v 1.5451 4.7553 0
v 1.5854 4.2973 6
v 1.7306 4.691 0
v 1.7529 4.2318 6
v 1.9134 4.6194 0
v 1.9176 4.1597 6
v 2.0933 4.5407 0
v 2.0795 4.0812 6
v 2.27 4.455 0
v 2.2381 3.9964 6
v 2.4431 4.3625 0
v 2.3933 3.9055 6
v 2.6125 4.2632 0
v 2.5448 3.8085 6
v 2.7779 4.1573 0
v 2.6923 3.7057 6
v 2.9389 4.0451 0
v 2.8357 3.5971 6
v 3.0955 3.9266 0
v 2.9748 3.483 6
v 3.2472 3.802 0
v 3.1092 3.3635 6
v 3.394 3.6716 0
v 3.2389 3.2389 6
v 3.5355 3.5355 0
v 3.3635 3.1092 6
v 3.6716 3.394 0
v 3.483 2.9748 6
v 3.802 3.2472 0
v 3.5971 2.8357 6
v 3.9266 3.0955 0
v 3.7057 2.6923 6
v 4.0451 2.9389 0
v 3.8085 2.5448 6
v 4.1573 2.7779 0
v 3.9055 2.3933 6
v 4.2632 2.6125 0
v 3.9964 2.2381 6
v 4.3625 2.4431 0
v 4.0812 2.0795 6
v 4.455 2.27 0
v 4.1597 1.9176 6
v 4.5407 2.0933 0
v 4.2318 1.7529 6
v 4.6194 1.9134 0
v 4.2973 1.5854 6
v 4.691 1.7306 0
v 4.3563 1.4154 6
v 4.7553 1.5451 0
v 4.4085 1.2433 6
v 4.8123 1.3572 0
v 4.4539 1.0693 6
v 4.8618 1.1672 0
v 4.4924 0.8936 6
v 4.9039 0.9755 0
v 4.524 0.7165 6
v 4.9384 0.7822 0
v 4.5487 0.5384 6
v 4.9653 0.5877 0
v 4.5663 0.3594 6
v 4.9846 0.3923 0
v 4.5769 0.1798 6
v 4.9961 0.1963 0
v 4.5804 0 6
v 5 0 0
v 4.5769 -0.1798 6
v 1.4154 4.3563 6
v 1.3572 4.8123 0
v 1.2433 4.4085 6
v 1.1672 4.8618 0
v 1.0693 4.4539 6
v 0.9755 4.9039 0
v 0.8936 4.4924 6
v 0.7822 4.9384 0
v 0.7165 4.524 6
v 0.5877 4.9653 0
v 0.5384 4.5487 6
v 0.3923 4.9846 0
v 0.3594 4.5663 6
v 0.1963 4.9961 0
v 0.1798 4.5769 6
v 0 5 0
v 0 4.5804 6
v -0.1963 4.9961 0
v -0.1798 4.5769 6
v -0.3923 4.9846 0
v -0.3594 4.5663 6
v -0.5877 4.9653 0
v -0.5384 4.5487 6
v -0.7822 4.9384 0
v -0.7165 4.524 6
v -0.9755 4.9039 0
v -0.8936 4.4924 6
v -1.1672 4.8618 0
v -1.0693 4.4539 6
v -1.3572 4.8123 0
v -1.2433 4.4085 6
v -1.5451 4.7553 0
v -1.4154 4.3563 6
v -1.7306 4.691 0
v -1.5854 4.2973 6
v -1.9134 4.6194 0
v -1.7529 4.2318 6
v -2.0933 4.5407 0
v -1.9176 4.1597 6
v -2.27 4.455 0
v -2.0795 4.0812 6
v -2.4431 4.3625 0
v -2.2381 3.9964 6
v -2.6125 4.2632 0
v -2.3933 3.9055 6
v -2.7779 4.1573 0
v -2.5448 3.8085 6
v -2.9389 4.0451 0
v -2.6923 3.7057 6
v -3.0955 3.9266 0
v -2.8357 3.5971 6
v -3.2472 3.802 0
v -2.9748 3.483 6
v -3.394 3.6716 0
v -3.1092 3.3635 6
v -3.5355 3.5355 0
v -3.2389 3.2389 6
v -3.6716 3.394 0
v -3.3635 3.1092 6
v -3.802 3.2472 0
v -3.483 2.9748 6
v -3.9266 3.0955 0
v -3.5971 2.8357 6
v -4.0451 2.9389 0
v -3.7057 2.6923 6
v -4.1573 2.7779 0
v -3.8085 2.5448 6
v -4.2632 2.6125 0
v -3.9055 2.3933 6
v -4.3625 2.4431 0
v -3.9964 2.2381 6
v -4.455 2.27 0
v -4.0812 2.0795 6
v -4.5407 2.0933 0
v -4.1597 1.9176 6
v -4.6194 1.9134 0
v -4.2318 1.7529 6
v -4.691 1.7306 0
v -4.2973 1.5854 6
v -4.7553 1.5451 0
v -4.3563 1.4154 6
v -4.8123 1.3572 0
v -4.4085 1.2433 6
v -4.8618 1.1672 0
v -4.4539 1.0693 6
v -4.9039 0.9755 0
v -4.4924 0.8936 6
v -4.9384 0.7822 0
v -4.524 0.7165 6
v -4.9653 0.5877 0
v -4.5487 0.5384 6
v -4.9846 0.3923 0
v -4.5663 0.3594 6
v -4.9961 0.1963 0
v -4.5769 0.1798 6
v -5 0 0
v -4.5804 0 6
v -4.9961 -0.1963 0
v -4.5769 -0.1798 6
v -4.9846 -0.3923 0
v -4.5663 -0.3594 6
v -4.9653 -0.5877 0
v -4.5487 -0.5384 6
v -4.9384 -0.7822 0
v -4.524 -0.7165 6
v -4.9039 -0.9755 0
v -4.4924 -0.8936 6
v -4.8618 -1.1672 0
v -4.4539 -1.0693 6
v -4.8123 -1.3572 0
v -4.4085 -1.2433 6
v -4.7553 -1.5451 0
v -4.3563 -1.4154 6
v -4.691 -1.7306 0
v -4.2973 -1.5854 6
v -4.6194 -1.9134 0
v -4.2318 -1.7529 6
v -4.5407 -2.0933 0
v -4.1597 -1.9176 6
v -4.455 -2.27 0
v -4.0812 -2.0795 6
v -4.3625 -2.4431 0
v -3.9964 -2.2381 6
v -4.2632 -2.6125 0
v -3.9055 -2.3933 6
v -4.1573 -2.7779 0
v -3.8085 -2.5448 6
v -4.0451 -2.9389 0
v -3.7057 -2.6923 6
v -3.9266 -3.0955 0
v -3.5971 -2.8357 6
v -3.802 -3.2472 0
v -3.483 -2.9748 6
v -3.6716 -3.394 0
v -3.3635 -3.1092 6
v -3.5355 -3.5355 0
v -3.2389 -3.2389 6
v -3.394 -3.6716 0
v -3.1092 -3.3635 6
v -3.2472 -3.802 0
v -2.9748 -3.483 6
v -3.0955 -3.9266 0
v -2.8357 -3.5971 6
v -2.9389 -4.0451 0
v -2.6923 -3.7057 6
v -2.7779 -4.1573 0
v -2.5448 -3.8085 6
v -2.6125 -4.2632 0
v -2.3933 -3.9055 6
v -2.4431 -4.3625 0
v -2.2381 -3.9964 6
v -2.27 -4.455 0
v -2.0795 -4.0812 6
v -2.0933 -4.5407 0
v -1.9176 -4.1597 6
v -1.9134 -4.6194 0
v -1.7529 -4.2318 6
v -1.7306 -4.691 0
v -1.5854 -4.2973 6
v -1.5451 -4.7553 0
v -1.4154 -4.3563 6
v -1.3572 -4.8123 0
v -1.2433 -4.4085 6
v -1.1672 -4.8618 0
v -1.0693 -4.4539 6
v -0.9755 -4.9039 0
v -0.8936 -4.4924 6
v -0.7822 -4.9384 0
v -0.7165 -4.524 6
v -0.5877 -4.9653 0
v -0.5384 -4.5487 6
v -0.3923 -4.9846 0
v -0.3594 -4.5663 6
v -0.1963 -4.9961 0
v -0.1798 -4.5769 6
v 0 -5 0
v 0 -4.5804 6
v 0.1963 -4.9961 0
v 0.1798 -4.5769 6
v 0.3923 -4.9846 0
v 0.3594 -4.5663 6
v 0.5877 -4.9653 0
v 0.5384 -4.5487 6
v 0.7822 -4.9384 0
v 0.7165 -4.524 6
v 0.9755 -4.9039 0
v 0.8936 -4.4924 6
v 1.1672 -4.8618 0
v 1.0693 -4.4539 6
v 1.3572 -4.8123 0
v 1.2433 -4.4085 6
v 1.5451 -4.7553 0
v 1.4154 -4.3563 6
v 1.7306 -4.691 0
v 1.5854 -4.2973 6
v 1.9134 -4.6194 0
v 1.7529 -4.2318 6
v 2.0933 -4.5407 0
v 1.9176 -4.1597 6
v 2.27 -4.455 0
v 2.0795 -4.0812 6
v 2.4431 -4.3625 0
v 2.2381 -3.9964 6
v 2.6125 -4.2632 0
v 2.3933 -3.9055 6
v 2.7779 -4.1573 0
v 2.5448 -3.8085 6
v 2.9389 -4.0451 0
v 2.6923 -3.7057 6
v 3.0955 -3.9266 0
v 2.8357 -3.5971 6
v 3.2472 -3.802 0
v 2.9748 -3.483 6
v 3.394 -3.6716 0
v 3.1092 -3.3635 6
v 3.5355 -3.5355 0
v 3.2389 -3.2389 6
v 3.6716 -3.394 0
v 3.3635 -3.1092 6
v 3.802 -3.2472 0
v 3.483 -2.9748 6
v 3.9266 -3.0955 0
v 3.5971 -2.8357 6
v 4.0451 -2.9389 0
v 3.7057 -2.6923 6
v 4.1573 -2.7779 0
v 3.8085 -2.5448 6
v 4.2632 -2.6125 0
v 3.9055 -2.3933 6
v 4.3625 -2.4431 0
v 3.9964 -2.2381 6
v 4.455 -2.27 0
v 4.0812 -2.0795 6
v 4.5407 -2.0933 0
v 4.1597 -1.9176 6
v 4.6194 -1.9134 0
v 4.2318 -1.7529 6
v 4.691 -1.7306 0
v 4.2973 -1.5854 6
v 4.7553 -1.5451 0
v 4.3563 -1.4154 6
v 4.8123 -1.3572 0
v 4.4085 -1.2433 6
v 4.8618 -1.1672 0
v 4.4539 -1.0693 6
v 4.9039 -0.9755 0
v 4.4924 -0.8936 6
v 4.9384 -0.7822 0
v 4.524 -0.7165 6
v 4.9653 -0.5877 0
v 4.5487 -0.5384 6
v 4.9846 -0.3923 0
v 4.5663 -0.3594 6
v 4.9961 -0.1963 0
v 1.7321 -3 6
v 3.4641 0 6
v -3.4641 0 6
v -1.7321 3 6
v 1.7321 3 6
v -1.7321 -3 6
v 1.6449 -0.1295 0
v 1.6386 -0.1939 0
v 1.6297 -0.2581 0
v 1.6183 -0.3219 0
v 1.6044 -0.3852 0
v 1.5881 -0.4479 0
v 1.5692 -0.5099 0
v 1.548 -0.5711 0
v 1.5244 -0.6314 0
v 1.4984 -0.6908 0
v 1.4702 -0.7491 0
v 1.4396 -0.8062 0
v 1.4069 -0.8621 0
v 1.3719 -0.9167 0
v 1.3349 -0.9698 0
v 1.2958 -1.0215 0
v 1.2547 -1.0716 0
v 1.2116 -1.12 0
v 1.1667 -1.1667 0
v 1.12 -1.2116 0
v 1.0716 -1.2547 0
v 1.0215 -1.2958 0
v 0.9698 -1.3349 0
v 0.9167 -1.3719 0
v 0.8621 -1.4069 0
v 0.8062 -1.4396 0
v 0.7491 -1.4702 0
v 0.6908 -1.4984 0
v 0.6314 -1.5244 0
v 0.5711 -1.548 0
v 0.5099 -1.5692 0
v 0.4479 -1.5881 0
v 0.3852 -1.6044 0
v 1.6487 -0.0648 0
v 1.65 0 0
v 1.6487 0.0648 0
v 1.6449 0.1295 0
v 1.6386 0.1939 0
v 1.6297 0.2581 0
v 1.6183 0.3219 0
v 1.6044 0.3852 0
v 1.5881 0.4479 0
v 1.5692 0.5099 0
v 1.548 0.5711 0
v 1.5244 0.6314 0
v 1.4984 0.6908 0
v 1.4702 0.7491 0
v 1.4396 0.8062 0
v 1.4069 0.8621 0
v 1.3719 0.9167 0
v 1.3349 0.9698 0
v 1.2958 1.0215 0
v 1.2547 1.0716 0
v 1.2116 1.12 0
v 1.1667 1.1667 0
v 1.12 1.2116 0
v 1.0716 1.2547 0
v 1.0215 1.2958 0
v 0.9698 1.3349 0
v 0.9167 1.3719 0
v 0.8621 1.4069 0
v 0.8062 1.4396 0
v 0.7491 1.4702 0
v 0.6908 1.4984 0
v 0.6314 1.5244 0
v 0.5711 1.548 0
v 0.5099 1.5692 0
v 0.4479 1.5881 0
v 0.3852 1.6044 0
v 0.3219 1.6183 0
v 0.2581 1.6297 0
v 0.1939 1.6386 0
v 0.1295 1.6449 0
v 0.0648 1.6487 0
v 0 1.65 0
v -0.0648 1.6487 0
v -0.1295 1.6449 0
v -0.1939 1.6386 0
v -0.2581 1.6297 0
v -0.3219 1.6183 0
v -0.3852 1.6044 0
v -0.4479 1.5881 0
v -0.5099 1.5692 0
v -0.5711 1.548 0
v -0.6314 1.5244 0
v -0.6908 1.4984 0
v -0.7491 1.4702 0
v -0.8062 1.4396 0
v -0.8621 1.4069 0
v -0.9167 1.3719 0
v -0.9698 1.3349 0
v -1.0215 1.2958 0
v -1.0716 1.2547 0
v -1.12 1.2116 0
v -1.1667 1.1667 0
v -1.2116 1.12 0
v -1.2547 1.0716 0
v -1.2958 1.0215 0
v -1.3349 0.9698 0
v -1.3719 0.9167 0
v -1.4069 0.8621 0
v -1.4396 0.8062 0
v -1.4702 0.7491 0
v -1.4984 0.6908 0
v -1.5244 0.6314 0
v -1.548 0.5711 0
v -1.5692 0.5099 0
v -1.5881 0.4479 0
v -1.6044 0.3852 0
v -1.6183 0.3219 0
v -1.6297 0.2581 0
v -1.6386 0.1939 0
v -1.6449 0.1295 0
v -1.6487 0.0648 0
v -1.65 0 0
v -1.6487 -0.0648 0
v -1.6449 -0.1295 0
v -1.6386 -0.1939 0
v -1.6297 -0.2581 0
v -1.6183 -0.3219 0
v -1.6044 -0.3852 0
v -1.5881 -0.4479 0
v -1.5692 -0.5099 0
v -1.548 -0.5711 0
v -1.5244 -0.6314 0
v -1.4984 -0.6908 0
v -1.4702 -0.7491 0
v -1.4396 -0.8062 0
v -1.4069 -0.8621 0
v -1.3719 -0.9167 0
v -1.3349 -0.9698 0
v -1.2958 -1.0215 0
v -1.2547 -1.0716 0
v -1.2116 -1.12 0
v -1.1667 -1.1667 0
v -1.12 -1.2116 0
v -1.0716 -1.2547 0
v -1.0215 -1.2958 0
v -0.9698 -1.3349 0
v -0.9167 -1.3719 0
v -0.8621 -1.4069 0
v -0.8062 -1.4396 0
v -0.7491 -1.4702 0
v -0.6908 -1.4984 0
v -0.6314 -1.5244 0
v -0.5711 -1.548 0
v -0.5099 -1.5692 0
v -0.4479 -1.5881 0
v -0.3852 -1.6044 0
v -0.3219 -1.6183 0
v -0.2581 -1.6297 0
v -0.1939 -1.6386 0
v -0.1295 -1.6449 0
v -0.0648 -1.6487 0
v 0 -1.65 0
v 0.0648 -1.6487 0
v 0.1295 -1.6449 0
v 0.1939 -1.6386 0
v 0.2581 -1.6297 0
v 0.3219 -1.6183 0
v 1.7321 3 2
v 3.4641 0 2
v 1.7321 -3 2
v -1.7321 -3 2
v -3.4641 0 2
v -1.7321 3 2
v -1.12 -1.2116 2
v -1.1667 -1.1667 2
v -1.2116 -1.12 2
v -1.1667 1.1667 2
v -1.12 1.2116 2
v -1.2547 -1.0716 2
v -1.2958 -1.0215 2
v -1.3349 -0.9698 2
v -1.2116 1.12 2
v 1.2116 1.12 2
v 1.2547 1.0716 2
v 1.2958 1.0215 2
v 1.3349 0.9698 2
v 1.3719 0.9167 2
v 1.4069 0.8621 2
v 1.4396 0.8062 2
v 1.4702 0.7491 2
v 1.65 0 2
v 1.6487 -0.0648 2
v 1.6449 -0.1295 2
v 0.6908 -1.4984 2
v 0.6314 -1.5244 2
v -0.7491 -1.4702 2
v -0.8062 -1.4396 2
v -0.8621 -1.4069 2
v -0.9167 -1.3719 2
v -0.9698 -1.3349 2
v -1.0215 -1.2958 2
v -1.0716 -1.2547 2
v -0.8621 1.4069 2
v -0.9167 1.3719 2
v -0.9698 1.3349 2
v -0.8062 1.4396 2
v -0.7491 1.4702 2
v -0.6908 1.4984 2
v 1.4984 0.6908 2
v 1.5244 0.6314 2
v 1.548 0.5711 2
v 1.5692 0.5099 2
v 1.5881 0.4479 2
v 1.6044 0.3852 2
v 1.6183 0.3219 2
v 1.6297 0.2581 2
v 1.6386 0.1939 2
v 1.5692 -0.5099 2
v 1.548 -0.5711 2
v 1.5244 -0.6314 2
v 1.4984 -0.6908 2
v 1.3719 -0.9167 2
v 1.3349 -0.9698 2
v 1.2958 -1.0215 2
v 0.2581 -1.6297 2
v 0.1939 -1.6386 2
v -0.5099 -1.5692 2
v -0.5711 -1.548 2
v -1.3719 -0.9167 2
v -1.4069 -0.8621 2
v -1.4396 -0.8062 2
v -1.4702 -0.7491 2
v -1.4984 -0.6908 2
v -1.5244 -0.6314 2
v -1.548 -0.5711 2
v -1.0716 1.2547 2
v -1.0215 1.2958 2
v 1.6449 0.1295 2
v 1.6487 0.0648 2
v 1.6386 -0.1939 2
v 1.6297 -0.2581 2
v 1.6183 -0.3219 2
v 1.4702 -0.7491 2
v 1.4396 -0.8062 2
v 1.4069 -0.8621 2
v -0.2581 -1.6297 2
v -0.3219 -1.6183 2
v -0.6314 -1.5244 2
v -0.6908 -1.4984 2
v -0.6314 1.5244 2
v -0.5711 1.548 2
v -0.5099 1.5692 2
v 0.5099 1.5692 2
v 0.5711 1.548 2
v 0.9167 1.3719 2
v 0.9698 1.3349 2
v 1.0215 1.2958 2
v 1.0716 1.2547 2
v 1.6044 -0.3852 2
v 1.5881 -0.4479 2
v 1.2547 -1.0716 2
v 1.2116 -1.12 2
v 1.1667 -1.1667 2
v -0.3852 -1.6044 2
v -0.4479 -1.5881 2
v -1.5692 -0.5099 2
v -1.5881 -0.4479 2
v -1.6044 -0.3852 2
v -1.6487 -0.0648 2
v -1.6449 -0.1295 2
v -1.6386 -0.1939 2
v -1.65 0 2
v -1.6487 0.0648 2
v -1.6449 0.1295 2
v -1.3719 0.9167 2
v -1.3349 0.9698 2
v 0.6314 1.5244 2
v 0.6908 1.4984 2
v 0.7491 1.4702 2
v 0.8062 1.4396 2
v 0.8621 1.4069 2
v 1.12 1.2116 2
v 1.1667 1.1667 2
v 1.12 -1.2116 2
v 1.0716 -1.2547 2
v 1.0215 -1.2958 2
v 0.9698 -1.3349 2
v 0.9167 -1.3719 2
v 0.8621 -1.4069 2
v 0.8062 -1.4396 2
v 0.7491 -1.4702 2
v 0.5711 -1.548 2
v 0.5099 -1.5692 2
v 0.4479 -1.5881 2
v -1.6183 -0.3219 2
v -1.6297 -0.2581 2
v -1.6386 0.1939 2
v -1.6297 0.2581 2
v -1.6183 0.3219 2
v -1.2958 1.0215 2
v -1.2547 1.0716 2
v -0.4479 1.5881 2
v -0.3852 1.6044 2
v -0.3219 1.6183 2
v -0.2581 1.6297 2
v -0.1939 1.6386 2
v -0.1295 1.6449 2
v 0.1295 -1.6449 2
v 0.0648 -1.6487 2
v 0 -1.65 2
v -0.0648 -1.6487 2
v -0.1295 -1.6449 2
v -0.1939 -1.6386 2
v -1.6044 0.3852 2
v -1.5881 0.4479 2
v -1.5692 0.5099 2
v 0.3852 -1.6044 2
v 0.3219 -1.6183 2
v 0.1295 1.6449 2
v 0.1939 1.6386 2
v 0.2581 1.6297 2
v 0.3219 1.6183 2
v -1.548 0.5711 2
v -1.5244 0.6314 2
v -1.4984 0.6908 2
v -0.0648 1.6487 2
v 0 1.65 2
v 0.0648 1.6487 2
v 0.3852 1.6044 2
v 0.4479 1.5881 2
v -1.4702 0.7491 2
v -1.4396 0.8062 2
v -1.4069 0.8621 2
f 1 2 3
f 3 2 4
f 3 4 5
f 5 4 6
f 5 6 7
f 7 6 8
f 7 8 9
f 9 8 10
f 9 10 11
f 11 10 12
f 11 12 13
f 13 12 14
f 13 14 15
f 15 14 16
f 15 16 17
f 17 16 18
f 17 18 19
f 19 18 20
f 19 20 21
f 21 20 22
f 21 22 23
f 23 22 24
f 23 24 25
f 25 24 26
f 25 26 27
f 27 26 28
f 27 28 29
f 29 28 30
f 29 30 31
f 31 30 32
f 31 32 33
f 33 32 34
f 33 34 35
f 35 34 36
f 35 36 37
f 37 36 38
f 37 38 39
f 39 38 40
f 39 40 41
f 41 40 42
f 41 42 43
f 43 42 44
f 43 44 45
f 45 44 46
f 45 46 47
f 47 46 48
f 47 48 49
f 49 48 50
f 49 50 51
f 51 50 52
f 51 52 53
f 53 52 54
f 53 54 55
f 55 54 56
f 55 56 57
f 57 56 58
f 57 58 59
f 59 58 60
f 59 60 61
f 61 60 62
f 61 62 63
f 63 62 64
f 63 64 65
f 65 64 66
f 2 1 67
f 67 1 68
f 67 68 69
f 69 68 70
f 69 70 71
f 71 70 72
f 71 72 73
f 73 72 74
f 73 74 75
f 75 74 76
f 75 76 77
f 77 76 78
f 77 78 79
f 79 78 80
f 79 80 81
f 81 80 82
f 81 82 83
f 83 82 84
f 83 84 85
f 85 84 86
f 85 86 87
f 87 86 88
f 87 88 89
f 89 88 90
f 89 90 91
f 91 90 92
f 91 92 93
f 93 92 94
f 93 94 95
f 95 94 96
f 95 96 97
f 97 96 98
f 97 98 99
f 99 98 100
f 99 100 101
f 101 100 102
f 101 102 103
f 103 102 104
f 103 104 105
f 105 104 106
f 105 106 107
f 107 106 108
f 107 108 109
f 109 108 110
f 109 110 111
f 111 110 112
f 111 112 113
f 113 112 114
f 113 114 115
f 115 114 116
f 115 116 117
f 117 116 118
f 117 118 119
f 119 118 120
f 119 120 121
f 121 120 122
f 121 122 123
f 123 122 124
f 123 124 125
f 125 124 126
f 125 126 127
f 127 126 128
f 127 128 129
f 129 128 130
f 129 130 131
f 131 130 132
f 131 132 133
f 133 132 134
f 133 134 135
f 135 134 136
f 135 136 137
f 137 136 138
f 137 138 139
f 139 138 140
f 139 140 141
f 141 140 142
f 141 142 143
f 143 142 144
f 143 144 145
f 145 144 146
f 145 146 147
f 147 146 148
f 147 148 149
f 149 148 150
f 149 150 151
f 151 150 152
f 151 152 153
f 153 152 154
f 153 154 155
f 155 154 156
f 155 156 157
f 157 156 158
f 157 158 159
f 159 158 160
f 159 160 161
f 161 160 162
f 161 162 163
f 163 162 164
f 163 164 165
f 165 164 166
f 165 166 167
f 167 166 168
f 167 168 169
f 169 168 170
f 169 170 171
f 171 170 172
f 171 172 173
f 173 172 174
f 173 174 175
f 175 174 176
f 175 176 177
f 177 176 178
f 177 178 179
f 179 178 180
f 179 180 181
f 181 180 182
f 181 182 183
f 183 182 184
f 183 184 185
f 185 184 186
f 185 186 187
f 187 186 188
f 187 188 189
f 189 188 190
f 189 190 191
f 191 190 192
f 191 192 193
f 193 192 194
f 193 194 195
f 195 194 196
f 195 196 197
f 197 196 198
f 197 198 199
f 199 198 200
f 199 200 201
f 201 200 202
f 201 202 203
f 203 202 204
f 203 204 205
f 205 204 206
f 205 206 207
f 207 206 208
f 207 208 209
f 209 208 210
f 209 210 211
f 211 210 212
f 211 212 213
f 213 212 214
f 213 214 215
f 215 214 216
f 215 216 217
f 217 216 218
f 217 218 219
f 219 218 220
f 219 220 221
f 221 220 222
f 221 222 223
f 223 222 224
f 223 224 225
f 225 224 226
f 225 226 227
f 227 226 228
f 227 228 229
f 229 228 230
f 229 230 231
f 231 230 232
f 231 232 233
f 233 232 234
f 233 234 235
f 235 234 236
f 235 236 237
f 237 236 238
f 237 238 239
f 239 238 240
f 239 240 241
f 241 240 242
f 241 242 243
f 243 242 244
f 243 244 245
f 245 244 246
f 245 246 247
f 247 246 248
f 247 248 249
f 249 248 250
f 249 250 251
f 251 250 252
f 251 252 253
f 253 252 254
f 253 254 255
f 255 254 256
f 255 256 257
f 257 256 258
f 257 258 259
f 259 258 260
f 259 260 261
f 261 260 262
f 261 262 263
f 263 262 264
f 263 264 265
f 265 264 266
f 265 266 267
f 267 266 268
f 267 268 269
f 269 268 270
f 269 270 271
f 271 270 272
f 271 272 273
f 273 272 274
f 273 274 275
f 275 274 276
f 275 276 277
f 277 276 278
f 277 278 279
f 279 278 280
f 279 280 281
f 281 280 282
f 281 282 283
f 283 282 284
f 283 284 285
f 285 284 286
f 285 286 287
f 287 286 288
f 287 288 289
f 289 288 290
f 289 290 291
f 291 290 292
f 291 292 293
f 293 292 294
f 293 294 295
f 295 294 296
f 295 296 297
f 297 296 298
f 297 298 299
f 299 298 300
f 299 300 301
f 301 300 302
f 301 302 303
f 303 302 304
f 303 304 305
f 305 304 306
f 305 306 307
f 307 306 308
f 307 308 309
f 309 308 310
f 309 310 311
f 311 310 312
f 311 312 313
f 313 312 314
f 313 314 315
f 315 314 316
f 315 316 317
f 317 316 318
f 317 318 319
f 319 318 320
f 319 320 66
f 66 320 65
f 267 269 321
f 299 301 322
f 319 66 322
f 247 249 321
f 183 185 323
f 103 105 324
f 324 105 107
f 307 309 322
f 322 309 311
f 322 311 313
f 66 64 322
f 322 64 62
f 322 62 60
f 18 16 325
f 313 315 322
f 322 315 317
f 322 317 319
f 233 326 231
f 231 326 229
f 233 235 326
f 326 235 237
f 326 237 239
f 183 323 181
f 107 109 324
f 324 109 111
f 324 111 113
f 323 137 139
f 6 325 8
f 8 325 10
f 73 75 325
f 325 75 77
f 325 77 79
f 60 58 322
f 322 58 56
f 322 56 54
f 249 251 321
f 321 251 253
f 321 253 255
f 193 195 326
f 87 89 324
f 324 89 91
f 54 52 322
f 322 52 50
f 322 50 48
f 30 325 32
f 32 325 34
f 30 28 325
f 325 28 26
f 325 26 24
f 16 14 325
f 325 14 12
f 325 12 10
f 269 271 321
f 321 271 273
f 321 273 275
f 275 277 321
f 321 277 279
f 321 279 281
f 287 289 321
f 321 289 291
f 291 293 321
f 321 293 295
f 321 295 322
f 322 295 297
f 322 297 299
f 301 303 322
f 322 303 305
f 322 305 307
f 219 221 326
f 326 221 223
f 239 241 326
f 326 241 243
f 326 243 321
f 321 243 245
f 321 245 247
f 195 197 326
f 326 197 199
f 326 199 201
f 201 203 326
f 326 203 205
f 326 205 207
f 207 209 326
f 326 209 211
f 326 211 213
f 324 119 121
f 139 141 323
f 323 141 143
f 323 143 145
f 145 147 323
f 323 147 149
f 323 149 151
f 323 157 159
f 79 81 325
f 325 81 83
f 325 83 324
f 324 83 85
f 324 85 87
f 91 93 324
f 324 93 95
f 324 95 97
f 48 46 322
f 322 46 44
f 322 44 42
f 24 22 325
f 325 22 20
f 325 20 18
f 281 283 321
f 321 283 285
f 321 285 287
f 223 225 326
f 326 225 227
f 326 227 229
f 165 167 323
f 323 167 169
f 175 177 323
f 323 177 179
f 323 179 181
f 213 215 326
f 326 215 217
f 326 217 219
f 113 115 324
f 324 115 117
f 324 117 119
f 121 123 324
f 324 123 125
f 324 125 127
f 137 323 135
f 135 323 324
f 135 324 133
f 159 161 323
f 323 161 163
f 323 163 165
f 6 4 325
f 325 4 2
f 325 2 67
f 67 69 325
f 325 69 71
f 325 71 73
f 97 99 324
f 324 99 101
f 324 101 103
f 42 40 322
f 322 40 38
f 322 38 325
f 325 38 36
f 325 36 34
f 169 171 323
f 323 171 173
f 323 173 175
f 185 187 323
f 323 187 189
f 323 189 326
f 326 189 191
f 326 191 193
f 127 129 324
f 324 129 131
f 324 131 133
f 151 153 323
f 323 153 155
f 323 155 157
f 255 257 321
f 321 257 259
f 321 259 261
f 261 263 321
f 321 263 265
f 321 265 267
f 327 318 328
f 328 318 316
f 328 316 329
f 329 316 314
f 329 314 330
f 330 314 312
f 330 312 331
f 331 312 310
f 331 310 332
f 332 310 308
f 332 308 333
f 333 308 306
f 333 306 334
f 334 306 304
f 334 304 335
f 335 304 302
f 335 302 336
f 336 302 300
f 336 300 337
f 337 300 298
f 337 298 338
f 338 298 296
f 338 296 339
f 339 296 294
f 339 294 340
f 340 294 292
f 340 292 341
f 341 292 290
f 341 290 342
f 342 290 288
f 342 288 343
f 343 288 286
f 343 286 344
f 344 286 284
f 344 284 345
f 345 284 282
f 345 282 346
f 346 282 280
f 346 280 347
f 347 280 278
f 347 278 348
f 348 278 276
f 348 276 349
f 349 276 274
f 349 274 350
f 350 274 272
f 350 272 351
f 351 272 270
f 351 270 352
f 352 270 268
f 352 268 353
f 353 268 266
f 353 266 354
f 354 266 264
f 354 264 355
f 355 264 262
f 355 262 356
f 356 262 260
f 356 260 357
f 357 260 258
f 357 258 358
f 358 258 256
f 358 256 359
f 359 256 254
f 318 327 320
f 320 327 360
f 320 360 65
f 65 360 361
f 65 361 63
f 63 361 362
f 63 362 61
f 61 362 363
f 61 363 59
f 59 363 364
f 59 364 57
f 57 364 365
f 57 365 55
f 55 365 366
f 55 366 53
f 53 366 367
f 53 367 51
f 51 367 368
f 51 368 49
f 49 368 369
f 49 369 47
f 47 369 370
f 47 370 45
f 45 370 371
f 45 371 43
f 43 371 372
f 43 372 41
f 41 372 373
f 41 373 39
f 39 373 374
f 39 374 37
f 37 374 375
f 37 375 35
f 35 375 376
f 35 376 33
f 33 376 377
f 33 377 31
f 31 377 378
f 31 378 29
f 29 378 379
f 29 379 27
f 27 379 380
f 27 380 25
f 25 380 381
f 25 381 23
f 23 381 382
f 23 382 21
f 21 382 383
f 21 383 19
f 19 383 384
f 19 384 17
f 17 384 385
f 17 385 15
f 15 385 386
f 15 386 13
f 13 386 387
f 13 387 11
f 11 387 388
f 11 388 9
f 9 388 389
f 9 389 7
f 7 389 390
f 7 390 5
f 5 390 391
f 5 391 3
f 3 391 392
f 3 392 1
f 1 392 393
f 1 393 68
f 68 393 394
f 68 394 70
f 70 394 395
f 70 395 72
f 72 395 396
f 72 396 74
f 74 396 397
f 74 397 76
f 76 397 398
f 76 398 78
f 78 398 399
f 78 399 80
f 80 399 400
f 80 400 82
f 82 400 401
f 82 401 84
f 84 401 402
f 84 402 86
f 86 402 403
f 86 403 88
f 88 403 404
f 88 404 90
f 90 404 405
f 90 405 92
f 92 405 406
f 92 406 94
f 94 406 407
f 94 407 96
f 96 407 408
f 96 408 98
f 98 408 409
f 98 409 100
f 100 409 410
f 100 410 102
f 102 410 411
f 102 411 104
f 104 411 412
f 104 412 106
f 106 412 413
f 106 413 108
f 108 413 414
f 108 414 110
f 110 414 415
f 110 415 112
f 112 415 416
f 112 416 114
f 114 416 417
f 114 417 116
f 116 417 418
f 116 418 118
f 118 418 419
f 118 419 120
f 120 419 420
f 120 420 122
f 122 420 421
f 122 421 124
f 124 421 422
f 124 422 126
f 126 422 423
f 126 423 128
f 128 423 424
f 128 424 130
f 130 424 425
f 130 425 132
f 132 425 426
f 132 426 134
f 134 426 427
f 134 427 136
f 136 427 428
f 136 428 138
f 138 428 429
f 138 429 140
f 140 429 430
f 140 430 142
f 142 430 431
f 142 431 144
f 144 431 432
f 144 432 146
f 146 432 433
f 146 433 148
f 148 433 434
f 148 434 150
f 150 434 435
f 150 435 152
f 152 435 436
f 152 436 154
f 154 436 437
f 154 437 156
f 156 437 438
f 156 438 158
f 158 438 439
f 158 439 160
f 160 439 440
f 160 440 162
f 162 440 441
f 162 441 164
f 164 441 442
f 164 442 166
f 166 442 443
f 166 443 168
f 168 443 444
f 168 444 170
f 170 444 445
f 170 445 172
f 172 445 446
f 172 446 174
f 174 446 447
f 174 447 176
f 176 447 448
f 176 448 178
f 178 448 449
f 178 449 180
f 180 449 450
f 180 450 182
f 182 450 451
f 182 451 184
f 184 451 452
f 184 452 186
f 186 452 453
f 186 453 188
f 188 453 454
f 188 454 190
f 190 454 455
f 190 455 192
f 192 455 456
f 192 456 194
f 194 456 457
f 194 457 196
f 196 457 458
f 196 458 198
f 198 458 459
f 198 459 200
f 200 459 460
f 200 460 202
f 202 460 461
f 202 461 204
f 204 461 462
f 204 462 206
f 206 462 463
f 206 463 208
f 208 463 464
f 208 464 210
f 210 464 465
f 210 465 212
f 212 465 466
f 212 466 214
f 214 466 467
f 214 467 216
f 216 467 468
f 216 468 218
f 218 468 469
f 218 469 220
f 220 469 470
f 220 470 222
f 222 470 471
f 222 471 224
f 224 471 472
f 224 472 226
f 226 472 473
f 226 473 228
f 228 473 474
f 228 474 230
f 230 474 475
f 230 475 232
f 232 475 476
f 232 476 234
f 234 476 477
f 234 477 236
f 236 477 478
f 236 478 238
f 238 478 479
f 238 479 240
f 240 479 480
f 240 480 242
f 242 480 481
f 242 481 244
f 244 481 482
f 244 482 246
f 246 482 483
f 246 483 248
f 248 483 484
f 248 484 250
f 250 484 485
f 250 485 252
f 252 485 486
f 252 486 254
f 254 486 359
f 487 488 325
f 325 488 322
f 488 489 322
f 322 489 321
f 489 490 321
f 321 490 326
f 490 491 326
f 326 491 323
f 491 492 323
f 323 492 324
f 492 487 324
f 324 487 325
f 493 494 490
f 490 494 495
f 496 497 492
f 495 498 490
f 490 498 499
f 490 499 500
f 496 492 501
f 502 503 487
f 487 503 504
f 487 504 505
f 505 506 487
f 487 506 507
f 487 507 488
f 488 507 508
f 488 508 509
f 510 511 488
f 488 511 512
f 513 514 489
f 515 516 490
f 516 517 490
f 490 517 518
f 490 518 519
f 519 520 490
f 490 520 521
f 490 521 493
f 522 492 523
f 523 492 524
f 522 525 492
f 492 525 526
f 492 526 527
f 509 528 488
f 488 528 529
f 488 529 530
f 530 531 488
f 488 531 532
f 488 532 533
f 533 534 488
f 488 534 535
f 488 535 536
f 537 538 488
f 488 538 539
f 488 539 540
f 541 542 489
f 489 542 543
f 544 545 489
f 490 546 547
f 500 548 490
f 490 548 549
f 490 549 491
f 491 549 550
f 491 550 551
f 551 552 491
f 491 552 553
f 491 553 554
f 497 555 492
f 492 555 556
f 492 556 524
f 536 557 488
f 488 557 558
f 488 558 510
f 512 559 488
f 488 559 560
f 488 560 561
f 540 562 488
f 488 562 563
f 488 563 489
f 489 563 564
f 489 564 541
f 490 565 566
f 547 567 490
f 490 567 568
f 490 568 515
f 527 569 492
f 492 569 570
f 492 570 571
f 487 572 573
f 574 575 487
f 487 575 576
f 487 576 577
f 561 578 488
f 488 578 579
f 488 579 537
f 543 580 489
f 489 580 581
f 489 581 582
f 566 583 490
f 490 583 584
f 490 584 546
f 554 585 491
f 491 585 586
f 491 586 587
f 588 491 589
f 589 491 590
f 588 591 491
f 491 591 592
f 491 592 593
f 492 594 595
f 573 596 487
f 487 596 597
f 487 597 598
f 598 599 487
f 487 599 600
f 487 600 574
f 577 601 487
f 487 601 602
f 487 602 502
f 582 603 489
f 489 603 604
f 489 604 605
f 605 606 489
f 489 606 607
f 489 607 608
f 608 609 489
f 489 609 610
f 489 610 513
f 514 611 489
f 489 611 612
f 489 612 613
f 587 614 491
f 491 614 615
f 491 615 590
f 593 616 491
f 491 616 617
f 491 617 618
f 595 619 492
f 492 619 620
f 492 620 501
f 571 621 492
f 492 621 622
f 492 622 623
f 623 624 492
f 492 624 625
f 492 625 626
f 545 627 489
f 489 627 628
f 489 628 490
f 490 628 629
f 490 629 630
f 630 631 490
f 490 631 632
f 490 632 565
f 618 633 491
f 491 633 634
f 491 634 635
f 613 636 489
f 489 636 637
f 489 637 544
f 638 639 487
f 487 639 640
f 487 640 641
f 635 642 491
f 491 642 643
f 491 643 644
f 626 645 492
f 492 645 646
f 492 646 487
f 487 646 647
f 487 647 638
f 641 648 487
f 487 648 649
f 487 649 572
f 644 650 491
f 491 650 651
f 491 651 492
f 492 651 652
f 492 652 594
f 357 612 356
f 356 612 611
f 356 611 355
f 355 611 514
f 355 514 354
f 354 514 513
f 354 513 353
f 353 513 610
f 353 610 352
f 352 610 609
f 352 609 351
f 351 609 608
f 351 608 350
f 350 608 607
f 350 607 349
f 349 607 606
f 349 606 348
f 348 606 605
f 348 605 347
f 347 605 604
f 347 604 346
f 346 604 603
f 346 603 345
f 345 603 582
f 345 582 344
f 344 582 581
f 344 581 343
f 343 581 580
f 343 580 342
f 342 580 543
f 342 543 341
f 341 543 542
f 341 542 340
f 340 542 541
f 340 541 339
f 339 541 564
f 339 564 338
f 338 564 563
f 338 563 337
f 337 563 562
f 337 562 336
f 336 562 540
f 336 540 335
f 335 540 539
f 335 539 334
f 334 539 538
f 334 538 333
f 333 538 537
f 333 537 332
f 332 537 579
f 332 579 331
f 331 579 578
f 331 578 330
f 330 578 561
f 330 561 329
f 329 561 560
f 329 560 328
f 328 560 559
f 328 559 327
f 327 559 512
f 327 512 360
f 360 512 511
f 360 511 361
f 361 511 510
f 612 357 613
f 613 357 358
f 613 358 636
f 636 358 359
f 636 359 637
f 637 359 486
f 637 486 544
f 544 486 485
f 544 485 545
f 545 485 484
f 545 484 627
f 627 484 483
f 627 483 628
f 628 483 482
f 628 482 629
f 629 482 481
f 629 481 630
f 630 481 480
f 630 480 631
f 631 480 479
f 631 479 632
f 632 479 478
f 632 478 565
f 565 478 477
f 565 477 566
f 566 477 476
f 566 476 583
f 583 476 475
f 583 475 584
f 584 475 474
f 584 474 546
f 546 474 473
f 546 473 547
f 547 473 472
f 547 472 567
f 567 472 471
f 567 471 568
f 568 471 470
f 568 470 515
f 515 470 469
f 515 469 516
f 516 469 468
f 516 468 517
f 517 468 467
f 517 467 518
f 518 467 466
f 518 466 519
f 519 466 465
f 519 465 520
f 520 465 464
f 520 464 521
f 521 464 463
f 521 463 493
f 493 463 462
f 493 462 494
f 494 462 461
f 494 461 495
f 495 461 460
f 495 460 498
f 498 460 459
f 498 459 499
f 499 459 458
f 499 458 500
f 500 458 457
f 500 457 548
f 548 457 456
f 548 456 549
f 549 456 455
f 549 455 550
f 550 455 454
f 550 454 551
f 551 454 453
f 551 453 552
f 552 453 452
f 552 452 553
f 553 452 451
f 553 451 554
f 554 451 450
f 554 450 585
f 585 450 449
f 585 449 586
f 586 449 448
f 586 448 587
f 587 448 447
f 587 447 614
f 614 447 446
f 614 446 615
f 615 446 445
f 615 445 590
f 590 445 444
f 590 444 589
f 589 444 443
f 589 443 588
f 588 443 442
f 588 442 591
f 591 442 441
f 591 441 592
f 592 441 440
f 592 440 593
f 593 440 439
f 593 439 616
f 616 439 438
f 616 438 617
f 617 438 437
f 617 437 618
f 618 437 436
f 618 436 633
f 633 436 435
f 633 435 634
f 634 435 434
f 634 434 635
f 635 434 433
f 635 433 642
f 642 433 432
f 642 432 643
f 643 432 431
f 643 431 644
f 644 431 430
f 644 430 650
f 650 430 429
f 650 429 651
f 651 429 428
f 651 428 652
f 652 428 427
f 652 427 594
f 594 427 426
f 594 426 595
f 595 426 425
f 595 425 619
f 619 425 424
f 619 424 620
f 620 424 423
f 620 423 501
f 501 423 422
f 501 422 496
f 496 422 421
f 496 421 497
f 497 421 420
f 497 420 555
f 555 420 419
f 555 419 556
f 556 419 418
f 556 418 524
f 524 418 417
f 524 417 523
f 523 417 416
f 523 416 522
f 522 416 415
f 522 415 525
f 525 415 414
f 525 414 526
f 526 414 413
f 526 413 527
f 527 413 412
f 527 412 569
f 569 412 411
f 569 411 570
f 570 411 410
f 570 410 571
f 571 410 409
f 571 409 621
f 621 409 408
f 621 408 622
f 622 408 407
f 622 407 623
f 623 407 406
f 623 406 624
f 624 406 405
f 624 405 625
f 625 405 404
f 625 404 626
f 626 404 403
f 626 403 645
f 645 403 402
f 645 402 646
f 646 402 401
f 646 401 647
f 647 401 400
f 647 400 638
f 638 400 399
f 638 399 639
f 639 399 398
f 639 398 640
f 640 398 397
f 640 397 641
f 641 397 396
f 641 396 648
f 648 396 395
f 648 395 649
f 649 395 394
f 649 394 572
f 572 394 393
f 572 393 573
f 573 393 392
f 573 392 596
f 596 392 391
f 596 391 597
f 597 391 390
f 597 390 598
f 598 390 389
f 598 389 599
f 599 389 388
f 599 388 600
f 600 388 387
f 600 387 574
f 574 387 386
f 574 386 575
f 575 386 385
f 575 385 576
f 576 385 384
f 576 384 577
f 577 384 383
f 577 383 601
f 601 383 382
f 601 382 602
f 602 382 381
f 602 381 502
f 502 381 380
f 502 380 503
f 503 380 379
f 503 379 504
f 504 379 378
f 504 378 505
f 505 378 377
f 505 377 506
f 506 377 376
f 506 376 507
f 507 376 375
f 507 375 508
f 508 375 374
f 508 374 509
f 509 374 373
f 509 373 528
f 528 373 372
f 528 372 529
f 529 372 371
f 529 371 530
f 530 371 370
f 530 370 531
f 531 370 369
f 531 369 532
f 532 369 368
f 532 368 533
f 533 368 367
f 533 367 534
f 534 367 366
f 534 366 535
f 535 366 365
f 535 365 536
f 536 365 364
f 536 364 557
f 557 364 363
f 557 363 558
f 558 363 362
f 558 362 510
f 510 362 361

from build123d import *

# Parameters (mm, degrees)
SKETCH1_R           = 5
BOSS_EXTRUDE1_DEPTH = 6
BOSS_EXTRUDE1_TAPER = 4
CUT_EXTRUDE1_DEPTH  = 4
SKETCH4_R           = 1.65
CUT_EXTRUDE2_DEPTH  = 9.124038405


with BuildPart() as part:
    # Sketch1 → Boss-Extrude1 (new body)
    with BuildSketch(Plane.XY):
        Circle(SKETCH1_R)
    extrude(amount=BOSS_EXTRUDE1_DEPTH, taper=BOSS_EXTRUDE1_TAPER)

    # Sketch2 → Cut-Extrude1 (cut)
    with BuildSketch(Plane.XY.offset(6)):
        Polygon((1.732050808, 3), (-1.732050808, 3), (-3.464101615, 0), (-1.732050808, -3), (1.732050808, -3), (3.464101615, 0), align=None)
    extrude(amount=-CUT_EXTRUDE1_DEPTH, mode=Mode.SUBTRACT)

    # Sketch4 → Cut-Extrude2 (cut, through all)
    with BuildSketch(Plane.XY.offset(2)):
        Circle(SKETCH4_R)
    extrude(amount=-CUT_EXTRUDE2_DEPTH, mode=Mode.SUBTRACT)


solid = part.part
